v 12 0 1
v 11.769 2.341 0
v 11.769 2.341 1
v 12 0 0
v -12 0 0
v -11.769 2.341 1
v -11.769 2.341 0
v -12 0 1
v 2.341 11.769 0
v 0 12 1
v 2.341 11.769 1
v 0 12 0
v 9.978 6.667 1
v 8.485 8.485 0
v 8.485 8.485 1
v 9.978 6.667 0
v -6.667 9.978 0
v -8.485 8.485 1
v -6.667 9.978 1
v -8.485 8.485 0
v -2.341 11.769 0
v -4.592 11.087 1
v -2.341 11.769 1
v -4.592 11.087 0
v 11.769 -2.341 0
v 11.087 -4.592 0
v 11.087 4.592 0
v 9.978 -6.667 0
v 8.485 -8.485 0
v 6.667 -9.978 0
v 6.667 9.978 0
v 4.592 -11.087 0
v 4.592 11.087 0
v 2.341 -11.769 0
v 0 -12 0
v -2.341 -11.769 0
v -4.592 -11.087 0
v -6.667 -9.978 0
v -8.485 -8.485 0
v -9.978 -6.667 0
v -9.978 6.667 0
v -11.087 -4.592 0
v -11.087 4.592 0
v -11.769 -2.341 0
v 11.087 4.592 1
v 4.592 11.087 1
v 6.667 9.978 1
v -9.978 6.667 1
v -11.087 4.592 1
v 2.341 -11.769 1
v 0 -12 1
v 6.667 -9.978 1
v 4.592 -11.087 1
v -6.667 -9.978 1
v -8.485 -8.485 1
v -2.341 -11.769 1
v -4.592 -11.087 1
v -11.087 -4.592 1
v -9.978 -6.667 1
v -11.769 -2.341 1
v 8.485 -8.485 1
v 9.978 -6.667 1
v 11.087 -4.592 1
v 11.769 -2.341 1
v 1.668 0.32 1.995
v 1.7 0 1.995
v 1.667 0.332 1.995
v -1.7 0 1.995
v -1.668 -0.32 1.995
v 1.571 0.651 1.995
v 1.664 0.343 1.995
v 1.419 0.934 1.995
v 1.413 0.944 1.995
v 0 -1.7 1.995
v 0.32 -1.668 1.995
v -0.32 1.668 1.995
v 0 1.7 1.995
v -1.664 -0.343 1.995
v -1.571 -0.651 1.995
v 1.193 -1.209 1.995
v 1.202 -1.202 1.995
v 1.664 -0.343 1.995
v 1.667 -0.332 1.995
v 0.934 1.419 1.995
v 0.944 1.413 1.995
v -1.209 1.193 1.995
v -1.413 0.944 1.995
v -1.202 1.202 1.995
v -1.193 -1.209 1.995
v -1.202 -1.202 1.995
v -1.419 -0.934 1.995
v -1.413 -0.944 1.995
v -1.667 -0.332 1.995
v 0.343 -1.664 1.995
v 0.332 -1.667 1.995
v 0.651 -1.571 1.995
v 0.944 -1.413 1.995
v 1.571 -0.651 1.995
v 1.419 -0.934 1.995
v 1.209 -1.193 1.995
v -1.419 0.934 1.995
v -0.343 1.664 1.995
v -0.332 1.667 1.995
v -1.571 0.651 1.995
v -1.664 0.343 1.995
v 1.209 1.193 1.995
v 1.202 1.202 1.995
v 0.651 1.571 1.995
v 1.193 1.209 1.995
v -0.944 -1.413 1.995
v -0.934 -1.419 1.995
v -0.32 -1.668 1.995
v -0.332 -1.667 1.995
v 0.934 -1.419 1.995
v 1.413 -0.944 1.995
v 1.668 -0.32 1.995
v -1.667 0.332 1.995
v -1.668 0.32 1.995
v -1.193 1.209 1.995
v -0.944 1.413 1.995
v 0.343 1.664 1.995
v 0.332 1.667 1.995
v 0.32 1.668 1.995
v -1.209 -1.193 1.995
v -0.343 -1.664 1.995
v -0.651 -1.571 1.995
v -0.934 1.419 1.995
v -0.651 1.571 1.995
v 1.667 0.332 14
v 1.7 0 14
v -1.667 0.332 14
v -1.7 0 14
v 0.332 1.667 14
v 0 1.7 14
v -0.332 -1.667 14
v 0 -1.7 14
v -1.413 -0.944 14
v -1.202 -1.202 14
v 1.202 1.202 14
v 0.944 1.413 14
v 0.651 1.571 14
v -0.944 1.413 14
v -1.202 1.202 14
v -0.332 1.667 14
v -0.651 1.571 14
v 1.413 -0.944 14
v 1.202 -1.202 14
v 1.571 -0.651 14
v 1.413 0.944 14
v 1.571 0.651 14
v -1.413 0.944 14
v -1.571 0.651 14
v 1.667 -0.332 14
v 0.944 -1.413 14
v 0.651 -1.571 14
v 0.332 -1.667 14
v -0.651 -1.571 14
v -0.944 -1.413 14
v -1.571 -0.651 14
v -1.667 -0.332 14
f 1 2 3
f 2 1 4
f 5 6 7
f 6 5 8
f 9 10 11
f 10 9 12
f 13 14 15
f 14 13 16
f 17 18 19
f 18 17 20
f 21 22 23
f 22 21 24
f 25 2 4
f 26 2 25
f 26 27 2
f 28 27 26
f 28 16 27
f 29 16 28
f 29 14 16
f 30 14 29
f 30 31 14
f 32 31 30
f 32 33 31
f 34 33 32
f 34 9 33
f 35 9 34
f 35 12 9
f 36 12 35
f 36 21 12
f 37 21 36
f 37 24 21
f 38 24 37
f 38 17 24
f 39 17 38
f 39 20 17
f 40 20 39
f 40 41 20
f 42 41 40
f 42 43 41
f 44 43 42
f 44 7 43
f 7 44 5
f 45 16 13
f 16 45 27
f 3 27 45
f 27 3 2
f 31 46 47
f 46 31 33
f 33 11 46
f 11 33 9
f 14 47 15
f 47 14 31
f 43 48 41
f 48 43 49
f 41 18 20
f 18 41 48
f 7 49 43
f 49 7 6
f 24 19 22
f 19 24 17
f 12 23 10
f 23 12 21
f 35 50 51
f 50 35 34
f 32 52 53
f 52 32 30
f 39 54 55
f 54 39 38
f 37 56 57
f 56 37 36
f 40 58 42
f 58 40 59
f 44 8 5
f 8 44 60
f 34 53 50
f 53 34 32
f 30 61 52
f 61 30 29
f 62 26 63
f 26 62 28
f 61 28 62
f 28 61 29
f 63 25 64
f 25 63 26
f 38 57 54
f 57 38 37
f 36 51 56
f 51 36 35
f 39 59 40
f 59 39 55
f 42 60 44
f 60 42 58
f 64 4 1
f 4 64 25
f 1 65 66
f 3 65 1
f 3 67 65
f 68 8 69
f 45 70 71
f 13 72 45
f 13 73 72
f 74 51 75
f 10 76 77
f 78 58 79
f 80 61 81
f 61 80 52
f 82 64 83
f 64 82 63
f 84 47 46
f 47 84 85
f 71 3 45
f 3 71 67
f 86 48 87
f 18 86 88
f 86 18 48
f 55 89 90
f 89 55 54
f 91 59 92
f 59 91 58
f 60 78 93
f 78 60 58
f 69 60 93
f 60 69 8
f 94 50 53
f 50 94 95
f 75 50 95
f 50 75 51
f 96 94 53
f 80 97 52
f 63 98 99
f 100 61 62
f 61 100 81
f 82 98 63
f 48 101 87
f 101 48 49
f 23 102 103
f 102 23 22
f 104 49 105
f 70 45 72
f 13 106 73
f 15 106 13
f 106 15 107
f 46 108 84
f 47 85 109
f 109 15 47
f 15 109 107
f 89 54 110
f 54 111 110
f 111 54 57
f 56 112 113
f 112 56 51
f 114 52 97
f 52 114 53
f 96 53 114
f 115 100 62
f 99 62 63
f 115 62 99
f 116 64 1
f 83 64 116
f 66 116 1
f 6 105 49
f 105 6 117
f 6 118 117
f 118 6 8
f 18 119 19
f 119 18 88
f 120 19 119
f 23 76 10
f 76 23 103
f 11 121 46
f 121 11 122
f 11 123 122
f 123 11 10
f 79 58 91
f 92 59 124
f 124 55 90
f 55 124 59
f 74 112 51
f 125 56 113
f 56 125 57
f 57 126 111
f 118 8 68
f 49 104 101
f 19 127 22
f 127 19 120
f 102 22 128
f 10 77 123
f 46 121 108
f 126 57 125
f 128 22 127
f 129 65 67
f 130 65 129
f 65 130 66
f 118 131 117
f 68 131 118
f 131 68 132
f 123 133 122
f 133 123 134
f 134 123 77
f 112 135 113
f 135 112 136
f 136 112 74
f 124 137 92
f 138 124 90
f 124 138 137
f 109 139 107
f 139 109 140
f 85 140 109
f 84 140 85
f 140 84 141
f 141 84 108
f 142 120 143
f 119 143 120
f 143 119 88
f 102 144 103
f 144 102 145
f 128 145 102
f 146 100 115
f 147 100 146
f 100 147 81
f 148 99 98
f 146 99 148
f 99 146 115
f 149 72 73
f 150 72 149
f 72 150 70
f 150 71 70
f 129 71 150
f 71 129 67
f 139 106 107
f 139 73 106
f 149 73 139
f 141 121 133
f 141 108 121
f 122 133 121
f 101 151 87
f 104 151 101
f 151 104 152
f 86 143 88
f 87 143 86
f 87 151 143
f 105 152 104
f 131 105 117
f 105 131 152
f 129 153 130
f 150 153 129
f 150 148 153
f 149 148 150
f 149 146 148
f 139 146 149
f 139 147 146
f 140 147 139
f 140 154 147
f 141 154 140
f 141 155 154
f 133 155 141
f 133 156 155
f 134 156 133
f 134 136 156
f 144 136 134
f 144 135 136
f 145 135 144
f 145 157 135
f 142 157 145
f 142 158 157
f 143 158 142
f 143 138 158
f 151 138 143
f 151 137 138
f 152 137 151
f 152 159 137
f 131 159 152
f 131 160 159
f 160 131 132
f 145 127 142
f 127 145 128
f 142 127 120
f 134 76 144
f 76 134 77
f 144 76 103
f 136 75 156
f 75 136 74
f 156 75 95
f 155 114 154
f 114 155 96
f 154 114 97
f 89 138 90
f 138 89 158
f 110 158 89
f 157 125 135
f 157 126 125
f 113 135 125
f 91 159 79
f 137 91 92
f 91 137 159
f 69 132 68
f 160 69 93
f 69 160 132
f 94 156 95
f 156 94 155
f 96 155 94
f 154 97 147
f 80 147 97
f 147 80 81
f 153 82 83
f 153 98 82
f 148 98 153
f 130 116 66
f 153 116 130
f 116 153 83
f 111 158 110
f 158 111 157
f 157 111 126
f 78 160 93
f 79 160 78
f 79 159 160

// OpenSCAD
$fn=32;
cylinder(1, 12, 12);

translate([0,0,1]){
  cylinder(1, 12, 3.3/2);
};

cylinder(14, 3.4/2, 3.4/2);
